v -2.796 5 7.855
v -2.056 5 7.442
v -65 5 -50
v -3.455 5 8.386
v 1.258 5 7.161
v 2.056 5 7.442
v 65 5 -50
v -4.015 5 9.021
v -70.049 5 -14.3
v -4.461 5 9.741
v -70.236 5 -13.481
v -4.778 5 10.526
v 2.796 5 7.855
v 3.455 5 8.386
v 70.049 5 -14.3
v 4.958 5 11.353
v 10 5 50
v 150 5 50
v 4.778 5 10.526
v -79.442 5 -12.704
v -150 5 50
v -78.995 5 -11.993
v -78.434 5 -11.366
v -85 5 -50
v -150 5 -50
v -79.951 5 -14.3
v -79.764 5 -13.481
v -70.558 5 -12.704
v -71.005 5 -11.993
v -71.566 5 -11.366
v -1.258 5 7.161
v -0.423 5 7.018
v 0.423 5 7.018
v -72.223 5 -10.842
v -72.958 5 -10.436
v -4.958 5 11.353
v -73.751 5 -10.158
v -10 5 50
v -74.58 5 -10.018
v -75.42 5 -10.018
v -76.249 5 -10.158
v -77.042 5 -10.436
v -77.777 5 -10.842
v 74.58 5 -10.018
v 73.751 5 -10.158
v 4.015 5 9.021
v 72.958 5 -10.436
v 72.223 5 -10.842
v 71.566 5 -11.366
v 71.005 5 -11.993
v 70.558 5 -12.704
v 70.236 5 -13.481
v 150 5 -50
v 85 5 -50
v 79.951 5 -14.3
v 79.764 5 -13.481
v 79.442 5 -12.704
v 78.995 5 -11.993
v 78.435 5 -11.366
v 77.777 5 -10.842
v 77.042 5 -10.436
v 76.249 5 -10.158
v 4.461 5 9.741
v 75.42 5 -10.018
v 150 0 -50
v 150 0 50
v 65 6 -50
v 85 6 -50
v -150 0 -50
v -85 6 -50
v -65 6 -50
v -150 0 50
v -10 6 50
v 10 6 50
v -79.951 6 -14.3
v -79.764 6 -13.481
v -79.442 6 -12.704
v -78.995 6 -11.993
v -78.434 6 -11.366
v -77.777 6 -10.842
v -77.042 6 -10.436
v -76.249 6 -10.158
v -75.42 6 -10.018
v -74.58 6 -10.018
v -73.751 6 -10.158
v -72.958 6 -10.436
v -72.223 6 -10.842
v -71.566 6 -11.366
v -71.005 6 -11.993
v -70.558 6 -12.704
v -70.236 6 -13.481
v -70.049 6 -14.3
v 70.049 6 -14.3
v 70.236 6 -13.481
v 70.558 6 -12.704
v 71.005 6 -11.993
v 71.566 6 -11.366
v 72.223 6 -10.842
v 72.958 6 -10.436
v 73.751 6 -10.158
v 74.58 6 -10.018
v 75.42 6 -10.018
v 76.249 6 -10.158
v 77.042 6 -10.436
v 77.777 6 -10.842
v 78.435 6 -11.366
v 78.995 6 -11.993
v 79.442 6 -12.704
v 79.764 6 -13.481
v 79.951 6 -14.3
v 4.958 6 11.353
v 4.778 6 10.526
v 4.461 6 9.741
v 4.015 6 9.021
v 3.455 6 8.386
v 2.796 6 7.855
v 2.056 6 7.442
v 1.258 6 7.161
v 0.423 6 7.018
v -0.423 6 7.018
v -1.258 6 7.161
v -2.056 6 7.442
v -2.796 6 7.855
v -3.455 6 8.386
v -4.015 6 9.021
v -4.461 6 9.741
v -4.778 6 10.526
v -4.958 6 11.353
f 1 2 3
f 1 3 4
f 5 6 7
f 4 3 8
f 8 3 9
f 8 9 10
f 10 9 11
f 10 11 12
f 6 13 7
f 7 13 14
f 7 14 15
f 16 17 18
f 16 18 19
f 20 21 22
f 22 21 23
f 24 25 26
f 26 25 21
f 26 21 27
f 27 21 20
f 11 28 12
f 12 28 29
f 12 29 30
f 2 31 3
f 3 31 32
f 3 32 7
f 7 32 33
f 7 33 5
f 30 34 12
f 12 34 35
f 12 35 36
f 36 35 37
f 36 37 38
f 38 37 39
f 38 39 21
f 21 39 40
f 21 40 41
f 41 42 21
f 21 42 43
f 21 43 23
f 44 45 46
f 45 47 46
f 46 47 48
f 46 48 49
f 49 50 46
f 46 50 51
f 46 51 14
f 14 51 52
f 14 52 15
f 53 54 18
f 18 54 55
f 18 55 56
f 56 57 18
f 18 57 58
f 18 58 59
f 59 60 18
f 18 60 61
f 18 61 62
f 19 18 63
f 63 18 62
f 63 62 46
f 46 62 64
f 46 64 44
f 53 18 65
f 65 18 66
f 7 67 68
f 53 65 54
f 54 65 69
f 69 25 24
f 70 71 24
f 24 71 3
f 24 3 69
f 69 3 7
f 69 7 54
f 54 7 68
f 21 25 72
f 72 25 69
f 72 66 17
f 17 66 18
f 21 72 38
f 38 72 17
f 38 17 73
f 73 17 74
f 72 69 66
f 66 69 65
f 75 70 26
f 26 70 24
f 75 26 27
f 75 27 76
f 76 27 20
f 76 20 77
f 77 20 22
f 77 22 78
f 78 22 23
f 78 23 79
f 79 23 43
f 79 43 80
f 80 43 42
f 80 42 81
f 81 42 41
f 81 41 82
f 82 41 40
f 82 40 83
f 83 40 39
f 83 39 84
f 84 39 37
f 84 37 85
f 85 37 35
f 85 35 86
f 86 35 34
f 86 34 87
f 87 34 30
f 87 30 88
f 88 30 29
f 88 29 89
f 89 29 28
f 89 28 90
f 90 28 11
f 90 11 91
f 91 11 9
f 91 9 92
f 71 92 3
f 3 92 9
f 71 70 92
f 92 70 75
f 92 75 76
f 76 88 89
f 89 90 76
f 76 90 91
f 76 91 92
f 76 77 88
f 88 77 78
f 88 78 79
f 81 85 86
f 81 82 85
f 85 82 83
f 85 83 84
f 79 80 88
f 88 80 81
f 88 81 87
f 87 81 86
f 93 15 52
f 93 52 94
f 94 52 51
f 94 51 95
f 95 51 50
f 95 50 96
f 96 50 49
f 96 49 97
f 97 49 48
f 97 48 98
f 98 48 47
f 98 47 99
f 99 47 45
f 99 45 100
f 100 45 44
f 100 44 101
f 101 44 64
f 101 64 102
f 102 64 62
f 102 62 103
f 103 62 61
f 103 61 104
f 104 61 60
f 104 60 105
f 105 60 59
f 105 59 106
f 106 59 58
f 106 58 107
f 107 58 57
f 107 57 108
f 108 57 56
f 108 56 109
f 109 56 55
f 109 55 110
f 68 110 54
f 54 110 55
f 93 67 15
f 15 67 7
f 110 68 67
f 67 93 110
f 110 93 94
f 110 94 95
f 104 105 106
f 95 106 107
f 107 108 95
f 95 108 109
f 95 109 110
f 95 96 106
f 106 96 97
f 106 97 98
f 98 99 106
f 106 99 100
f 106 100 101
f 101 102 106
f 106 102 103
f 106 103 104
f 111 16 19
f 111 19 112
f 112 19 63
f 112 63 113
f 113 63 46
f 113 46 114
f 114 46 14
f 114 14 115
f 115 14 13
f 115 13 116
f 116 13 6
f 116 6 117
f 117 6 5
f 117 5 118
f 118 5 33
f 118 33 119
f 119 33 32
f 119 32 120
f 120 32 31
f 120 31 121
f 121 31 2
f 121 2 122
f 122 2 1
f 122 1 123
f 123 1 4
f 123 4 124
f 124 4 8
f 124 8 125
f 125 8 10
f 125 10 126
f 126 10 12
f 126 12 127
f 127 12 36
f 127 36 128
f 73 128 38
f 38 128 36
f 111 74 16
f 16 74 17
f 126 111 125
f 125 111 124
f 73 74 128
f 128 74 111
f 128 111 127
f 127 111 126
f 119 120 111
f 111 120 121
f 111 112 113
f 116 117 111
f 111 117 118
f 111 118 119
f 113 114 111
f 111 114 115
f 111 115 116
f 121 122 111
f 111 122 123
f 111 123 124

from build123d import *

# Parameters (mm, degrees)
SKETCH1_W           = 300
SKETCH1_H           = 100
BOSS_EXTRUDE1_DEPTH = 5
BOSS_EXTRUDE2_DEPTH = 1


with BuildPart() as part:
    # Sketch1 → Boss-Extrude1 (new body)
    with BuildSketch(Plane(origin=(0, 0, 0), x_dir=(1, 0, 0), z_dir=(0, 1, 0))):
        Rectangle(SKETCH1_W, SKETCH1_H)
    extrude(amount=BOSS_EXTRUDE1_DEPTH)

    # Sketch2 → Boss-Extrude2 (add)
    with BuildSketch(Plane(origin=(0, 5, 0), x_dir=(1, 0, 0), z_dir=(0, 1, 0))):
        with BuildLine():
            Line((-85, 50), (-79.9507281, 14.299791972))
            ThreePointArc((-79.9507281, 14.299791972), (-75, 10), (-70.0492719, 14.299791972))
            Line((-70.0492719, 14.299791972), (-65, 50))
            Line((-65, 50), (-85, 50))
        make_face()
        with BuildLine():
            Line((70.0492719, 14.299791972), (65, 50))
            Line((65, 50), (85, 50))
            Line((85, 50), (79.9507281, 14.299791972))
            ThreePointArc((79.9507281, 14.299791972), (75, 10), (70.0492719, 14.299791972))
        make_face()
        with BuildLine():
            Line((4.957983551, -11.353162223), (10, -50))
            Line((10, -50), (-10, -50))
            Line((-10, -50), (-4.957983551, -11.353162223))
            ThreePointArc((-4.957983551, -11.353162223), (0, -7), (4.957983551, -11.353162223))
        make_face()
    extrude(amount=BOSS_EXTRUDE2_DEPTH)


solid = part.part
